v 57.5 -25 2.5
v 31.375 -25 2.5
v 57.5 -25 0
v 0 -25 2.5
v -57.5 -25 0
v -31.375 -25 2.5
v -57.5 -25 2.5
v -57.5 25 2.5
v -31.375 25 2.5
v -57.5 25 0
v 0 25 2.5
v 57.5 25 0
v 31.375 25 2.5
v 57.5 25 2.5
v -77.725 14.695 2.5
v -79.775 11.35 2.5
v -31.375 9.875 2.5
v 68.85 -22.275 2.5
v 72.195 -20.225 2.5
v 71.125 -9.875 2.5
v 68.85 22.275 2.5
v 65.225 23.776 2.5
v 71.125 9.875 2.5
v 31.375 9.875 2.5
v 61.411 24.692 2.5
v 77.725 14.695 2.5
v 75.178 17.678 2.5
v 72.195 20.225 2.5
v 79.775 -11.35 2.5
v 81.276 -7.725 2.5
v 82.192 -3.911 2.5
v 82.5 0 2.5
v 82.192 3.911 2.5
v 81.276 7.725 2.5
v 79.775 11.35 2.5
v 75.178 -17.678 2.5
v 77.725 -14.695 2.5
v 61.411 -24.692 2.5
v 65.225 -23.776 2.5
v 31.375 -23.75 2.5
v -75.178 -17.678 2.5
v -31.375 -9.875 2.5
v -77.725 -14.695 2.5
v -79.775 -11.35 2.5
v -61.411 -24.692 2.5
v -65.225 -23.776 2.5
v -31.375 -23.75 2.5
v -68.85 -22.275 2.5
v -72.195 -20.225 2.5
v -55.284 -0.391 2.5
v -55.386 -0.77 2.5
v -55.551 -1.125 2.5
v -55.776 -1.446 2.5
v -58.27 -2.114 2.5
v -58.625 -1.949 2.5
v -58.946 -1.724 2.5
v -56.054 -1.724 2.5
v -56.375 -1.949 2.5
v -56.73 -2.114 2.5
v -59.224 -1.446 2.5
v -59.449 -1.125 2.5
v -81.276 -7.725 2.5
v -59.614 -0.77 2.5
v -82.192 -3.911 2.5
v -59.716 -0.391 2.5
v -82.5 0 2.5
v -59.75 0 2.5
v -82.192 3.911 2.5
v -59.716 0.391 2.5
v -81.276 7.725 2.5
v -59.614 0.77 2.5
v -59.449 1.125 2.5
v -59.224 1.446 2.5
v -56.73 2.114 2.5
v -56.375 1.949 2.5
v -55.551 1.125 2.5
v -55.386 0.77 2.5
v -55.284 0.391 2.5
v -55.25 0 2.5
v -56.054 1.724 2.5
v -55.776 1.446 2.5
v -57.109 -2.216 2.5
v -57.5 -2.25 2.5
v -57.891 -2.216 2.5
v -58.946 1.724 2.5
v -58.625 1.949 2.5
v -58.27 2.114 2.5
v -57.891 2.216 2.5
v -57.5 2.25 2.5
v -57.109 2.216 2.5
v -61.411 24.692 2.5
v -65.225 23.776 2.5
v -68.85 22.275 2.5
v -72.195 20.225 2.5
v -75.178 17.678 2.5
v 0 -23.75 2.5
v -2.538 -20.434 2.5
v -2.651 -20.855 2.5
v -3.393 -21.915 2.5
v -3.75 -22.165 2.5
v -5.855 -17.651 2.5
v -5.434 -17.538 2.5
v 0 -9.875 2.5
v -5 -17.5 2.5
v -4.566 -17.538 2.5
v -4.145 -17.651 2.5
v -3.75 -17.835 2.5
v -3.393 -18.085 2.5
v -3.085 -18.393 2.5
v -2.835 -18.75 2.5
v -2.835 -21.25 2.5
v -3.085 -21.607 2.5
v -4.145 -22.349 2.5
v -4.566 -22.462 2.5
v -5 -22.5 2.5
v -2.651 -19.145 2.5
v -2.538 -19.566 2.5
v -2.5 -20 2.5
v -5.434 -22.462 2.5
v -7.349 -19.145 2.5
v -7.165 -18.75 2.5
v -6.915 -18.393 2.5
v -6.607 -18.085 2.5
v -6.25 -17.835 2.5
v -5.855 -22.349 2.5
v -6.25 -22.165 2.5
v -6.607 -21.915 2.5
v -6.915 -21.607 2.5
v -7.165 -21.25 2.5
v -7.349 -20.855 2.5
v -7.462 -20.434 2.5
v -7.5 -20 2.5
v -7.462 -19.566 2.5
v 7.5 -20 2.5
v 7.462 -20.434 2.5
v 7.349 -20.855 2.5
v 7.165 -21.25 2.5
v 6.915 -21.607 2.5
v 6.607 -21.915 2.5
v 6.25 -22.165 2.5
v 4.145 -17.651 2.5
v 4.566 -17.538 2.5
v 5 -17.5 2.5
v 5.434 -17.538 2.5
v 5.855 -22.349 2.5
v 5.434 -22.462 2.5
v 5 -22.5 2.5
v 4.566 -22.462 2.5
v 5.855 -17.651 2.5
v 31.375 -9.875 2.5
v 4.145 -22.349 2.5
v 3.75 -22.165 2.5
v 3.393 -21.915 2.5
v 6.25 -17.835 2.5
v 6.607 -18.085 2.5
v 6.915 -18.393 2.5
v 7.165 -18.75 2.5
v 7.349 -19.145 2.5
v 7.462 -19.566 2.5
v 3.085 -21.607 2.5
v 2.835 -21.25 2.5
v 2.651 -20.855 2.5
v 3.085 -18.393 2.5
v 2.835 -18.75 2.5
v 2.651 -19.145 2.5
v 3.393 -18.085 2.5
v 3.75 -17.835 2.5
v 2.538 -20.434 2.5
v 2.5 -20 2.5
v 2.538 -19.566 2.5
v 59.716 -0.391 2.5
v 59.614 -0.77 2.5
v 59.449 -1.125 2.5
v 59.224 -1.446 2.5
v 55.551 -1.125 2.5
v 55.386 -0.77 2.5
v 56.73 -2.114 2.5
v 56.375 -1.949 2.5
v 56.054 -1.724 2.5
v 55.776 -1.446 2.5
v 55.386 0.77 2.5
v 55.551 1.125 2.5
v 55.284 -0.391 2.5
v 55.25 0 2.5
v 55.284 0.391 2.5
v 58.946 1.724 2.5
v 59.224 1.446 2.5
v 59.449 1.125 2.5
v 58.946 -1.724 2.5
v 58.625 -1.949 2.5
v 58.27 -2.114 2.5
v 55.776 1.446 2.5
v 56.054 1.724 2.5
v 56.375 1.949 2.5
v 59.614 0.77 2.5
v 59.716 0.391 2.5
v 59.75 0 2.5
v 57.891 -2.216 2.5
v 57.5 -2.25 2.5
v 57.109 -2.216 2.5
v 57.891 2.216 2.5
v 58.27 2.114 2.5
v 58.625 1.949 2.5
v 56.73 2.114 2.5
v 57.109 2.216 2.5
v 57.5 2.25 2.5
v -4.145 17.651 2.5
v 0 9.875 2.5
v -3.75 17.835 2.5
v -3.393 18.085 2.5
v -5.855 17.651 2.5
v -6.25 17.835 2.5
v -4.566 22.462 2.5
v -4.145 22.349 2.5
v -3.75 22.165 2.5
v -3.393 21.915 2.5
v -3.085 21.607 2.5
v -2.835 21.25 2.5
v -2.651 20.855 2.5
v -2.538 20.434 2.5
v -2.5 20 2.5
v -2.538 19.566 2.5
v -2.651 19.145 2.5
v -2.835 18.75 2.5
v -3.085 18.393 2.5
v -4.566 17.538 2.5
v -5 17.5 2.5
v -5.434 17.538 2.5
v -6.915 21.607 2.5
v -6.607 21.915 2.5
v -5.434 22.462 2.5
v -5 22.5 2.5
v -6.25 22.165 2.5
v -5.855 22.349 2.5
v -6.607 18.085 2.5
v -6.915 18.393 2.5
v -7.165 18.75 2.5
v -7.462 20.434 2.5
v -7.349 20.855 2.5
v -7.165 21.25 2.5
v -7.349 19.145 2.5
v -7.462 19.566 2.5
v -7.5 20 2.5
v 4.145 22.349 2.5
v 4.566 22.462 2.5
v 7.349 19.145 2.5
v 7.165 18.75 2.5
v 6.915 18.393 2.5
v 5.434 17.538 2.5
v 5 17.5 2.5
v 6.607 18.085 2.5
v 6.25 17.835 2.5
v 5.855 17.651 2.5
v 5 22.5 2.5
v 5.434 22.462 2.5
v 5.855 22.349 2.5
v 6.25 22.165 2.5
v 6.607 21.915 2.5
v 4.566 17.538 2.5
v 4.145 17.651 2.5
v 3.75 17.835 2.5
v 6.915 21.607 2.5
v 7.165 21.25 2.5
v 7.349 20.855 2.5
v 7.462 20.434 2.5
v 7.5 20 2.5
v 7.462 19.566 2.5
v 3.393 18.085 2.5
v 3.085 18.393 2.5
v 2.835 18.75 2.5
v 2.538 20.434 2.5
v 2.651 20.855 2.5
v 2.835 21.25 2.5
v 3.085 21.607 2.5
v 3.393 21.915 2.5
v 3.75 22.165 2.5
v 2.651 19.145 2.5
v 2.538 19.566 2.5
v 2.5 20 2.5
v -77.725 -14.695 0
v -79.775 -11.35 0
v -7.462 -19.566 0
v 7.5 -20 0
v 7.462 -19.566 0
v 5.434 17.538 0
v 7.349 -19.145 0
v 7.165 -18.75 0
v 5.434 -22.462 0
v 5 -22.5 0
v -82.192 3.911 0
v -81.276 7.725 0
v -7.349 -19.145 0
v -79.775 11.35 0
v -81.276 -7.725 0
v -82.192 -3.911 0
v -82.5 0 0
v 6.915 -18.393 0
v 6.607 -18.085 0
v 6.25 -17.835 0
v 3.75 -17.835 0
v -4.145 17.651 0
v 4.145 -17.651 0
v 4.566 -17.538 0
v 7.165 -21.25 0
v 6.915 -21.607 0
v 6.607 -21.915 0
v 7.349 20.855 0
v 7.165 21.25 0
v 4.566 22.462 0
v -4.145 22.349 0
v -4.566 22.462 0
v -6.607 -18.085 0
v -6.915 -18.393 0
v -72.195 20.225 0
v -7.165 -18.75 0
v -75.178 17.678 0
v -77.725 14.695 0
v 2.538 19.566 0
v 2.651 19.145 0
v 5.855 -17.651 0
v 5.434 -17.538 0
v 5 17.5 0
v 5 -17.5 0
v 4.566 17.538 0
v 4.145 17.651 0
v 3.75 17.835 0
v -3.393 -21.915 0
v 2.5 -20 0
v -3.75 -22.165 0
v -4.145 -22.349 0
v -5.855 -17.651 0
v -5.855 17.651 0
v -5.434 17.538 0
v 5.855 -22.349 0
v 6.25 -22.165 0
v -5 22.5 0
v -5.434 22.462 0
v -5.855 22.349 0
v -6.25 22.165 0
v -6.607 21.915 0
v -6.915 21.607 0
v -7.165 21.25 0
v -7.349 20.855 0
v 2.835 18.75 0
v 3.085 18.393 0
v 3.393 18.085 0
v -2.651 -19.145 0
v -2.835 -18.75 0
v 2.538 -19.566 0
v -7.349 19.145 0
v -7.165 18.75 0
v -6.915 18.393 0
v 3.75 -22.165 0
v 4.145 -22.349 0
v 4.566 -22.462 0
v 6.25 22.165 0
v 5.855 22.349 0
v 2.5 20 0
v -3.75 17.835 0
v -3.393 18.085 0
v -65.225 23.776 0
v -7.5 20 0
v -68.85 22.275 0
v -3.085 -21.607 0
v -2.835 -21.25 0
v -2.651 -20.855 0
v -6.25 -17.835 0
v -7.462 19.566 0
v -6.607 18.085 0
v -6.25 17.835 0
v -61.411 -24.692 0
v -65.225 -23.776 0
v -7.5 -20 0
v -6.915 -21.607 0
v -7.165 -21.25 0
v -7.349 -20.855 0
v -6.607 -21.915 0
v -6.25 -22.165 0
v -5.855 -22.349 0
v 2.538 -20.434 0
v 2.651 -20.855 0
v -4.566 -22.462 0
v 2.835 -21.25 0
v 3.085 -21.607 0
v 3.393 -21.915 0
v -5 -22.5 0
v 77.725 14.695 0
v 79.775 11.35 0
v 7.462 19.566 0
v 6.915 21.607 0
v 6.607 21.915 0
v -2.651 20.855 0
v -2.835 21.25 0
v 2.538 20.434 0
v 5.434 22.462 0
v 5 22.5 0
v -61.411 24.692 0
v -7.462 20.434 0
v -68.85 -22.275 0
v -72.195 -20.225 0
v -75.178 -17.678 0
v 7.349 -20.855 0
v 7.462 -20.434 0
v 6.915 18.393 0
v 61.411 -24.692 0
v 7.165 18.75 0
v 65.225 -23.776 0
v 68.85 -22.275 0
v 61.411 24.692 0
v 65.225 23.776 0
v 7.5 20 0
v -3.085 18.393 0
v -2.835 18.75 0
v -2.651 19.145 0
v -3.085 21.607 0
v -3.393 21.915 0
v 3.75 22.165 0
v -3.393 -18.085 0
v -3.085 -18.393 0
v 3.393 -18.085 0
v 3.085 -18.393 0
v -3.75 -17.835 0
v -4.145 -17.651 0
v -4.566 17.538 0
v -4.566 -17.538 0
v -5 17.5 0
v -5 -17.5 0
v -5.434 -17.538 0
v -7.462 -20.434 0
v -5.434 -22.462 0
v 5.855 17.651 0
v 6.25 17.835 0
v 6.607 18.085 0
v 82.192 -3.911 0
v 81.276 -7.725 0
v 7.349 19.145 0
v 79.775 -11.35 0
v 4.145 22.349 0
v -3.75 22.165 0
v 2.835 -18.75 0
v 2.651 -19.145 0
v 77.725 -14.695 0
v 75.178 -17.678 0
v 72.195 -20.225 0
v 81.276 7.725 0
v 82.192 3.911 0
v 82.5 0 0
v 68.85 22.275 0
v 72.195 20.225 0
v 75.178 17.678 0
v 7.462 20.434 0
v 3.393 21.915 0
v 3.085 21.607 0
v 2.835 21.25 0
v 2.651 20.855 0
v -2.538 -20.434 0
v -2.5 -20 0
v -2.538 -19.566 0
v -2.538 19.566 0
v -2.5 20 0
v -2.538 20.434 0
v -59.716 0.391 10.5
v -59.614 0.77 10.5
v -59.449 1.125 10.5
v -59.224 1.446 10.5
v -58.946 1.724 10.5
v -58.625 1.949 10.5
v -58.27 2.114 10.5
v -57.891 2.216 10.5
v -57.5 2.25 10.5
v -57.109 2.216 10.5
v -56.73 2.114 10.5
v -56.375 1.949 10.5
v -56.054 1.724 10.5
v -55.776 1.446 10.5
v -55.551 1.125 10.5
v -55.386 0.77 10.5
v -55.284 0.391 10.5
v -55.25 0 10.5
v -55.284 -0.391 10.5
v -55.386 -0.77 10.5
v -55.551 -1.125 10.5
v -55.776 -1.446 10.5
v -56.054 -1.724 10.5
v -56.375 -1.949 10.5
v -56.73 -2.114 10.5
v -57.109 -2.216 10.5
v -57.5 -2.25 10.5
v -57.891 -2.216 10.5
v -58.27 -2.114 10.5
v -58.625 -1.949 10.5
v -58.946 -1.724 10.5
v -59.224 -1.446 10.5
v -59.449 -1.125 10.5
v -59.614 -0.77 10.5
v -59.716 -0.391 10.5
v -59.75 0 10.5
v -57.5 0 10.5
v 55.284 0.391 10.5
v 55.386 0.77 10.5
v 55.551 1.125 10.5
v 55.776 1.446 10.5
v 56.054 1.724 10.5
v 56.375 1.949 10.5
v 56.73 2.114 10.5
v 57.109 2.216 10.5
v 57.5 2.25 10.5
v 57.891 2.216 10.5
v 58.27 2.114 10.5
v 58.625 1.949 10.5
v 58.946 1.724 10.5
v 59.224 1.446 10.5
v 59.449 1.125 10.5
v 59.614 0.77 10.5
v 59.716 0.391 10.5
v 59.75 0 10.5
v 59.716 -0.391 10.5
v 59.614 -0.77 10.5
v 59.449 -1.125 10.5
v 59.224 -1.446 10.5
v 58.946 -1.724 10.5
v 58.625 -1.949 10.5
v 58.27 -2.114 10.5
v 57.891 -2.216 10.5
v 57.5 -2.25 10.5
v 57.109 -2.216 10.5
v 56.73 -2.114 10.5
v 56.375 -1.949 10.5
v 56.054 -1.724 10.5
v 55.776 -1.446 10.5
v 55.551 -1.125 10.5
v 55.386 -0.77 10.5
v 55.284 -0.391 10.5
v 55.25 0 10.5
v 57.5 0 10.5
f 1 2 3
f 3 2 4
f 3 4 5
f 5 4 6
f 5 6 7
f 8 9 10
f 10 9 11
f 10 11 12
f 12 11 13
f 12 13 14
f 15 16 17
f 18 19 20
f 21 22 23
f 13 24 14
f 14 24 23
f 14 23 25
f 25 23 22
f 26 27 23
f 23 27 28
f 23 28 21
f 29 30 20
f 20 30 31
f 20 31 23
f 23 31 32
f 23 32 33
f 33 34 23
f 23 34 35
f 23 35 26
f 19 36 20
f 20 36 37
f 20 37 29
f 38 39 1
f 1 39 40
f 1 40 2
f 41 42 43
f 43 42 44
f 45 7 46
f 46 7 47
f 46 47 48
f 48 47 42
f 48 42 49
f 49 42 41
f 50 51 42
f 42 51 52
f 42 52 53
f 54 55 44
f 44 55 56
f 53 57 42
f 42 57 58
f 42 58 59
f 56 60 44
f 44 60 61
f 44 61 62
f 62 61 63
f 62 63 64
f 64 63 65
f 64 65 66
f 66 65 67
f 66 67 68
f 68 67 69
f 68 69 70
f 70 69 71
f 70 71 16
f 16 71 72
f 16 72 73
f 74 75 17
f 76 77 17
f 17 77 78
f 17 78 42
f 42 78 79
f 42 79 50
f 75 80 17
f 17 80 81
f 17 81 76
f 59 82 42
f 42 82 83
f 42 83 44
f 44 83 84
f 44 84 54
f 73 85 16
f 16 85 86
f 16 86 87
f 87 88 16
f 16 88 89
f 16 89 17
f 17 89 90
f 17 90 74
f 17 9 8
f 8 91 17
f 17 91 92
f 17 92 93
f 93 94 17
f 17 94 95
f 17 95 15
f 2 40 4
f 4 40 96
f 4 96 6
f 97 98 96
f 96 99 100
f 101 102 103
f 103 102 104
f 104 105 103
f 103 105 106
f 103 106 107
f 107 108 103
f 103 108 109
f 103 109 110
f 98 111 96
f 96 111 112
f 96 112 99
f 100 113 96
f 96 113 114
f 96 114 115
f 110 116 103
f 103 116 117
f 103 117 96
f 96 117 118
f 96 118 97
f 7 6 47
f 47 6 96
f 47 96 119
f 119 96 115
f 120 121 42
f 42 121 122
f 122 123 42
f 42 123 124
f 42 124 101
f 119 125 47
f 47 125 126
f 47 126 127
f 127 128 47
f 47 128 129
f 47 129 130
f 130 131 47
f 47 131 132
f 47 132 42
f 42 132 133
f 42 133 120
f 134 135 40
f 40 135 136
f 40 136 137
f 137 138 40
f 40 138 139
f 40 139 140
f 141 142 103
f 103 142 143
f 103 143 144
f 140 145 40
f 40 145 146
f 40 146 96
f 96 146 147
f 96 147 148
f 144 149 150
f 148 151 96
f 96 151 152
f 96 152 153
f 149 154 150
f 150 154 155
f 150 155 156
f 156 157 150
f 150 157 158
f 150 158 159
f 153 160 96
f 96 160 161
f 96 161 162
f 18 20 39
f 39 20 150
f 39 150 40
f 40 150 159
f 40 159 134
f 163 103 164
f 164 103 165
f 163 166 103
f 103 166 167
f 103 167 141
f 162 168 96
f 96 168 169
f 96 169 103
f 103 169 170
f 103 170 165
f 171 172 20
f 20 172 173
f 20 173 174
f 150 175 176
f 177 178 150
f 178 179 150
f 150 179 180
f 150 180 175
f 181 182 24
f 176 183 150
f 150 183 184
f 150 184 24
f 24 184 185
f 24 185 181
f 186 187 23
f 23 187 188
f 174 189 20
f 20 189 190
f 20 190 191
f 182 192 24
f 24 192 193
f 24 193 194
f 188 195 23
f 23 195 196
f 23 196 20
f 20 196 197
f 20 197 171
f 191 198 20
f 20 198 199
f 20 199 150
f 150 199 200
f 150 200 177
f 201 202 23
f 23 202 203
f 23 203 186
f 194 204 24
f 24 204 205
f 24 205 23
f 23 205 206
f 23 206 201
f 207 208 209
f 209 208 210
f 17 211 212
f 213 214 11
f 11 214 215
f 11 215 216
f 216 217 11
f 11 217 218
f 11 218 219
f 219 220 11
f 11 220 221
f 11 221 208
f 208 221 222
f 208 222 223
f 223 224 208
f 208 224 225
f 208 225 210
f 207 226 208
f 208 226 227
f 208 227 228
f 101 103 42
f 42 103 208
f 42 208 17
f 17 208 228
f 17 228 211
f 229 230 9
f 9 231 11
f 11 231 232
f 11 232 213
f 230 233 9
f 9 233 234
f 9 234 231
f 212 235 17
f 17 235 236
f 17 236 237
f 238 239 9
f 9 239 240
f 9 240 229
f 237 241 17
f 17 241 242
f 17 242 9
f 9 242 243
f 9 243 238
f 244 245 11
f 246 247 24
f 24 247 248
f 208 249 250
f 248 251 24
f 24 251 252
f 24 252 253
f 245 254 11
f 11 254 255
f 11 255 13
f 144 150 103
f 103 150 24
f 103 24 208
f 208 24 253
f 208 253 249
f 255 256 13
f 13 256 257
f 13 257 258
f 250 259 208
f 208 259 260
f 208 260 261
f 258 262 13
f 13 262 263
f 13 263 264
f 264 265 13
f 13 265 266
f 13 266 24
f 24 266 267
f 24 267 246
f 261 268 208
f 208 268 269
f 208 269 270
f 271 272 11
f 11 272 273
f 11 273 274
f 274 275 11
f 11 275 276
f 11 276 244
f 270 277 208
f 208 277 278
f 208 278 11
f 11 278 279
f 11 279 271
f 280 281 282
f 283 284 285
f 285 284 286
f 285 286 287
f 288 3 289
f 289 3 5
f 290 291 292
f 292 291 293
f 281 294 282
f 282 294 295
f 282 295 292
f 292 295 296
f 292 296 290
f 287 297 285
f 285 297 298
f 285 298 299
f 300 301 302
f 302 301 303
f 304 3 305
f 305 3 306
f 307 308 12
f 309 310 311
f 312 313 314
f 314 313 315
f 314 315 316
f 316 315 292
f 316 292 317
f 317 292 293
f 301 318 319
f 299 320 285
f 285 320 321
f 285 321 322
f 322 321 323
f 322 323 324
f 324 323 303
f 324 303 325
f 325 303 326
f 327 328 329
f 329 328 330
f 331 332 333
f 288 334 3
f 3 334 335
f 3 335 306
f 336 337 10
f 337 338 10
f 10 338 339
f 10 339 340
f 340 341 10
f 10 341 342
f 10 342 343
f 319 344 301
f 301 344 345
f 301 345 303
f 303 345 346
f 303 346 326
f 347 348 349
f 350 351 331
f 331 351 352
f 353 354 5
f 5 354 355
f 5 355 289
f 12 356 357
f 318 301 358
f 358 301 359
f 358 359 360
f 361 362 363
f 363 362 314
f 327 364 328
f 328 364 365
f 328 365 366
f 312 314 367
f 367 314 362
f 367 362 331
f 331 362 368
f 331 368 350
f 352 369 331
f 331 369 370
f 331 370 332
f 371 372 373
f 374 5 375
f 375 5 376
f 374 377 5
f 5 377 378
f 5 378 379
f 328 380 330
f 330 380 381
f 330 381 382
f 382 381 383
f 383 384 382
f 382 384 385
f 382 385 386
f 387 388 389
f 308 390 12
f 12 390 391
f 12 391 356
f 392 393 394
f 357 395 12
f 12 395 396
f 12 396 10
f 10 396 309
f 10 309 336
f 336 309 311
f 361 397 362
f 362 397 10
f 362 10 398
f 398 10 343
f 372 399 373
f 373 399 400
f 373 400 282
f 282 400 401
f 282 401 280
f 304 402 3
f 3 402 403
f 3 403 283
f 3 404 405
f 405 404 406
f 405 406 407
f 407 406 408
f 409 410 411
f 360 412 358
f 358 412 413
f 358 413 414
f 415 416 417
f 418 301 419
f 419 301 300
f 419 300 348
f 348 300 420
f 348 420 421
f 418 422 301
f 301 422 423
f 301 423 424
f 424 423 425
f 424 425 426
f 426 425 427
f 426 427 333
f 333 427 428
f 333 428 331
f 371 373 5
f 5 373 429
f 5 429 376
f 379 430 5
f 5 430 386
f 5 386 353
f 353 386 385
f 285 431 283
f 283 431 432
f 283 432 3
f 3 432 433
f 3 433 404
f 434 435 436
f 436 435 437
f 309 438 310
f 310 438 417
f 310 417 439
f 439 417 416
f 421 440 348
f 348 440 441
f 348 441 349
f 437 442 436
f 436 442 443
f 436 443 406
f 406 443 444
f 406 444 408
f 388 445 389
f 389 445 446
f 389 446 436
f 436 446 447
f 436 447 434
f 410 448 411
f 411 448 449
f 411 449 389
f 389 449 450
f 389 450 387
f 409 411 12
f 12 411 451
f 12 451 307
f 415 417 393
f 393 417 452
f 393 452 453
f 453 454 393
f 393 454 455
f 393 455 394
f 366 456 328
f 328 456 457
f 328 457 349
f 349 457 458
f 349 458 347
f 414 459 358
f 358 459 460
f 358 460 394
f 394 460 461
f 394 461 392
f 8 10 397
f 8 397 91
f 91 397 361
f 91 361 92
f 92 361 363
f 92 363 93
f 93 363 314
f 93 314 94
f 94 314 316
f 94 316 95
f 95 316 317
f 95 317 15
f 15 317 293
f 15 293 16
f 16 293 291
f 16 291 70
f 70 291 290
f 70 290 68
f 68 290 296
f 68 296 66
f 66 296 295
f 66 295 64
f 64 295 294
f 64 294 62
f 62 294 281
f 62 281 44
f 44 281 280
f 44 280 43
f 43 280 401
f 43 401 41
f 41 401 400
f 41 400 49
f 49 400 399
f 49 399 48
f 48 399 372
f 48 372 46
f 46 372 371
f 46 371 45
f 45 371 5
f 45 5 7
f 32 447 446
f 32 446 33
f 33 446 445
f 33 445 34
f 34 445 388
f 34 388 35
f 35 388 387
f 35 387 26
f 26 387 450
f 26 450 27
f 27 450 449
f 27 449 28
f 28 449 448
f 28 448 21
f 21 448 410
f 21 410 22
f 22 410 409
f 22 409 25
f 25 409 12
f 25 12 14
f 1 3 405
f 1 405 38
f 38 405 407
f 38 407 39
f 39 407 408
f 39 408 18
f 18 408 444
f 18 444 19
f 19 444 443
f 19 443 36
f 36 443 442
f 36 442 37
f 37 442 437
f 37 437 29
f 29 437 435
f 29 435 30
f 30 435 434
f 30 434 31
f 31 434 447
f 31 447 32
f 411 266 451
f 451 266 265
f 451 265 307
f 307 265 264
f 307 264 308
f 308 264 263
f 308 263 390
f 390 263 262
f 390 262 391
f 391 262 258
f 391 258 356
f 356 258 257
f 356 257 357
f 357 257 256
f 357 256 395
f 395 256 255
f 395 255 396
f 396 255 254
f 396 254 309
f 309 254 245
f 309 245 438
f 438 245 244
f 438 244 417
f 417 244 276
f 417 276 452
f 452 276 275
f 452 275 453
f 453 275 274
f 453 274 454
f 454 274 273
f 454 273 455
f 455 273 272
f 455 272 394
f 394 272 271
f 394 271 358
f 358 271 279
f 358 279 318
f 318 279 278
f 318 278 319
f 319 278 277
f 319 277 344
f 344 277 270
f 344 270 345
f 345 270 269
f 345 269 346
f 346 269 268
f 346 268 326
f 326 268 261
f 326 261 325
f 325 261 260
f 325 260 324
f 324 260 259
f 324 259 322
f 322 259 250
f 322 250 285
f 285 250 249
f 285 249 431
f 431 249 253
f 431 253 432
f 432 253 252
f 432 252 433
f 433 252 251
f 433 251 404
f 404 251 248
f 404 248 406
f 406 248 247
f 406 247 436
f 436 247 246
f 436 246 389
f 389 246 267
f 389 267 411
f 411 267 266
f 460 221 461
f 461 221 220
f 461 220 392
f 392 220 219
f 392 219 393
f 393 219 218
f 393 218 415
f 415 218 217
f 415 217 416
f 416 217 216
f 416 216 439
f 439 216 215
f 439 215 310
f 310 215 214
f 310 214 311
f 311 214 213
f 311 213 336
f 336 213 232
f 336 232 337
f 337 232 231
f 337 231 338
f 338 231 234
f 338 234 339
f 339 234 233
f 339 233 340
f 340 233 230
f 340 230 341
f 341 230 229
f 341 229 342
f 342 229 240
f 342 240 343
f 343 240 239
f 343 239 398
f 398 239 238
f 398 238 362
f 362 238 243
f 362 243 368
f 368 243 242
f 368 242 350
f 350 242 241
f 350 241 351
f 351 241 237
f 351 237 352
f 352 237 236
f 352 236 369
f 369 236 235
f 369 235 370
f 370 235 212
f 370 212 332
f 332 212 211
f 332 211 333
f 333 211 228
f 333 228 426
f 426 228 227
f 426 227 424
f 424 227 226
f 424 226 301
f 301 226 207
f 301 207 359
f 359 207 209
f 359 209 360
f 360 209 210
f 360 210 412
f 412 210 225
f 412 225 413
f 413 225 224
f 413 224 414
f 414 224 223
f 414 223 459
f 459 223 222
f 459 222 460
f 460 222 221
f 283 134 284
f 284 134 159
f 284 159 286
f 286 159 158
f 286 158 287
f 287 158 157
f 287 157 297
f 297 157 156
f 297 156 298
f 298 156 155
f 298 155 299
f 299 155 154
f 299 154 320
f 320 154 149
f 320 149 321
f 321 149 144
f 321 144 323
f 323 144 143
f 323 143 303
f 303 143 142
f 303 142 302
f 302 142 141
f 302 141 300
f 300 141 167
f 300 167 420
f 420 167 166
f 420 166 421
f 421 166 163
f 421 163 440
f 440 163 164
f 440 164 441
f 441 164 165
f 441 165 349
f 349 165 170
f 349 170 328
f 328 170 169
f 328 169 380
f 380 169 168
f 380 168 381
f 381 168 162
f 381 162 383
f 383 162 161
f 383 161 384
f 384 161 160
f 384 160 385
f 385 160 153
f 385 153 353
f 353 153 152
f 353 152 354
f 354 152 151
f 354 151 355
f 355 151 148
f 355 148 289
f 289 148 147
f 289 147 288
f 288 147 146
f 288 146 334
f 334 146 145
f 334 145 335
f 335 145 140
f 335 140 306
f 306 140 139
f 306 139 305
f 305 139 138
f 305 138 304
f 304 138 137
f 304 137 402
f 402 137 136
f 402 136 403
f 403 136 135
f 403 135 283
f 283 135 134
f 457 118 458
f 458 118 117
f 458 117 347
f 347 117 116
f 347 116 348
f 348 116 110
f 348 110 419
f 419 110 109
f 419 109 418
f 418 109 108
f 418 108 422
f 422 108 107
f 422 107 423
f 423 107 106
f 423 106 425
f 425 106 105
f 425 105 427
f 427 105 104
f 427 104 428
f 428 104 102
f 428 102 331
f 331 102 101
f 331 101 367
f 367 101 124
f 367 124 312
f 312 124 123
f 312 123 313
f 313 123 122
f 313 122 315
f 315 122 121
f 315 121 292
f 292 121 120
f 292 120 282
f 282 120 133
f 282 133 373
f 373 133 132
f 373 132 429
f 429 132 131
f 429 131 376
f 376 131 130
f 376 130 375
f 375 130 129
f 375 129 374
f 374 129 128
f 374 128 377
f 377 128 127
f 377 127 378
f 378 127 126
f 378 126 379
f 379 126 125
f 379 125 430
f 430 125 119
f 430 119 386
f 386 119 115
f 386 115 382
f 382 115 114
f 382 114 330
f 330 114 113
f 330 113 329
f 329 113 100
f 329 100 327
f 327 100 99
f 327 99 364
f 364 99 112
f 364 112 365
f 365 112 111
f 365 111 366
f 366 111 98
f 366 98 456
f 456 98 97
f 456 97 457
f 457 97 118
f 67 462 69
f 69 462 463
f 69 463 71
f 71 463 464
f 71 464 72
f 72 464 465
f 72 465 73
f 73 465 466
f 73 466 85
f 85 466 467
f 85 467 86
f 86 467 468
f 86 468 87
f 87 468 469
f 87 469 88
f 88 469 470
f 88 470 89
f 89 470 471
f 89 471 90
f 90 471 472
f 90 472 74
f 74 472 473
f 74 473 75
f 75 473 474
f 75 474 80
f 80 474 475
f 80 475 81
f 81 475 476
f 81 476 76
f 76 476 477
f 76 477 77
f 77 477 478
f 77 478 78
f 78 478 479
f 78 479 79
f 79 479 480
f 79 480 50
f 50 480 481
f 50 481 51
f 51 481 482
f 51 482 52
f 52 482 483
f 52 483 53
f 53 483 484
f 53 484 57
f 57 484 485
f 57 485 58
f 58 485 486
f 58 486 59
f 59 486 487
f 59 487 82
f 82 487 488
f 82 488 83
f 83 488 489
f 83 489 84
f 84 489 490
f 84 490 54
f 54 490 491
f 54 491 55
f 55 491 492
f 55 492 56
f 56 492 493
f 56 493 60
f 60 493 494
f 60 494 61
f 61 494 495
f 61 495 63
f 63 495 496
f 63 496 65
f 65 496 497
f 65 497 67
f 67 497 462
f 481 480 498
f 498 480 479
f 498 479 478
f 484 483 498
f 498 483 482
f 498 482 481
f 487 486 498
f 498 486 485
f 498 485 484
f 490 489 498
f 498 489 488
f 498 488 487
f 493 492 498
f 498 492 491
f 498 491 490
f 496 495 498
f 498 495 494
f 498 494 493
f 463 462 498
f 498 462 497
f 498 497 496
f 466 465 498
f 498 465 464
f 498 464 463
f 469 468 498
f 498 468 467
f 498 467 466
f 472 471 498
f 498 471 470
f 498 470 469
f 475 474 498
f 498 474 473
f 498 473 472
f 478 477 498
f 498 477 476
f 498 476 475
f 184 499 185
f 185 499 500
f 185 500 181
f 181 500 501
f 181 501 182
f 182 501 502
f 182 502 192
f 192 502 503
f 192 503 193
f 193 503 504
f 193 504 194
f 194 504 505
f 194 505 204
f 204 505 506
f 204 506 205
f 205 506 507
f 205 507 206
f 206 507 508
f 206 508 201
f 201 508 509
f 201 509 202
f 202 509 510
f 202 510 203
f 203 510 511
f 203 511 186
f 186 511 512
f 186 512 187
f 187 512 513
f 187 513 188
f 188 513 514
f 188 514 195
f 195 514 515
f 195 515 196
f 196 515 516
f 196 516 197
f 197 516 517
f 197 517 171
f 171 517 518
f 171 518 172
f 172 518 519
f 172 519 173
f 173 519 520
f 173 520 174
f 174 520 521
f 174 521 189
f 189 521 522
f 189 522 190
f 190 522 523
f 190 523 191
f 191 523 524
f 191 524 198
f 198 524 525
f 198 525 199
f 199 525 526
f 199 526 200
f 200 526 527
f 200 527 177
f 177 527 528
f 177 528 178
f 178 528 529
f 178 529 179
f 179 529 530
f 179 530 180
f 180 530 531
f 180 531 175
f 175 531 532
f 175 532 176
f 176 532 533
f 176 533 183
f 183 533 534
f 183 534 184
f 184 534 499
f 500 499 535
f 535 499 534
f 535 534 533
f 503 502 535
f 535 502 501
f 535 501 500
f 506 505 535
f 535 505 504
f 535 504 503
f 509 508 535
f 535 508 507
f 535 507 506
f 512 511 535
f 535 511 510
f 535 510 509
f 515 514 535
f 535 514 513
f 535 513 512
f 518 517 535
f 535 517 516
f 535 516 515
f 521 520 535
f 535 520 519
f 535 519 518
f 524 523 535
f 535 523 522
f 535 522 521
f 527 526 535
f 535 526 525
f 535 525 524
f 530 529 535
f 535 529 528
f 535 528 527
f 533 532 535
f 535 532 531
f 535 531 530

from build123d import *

# Parameters (mm, degrees)
SKETCH1_W           = 165
SKETCH1_H           = 50
BOSS_EXTRUDE1_DEPTH = 2.5
FILLET1_R           = 25
SKETCH2_R           = 2.5
CUT_EXTRUDE1_DEPTH  = 2.5
SKETCH4_R           = 2.25
BOSS_EXTRUDE2_DEPTH = 8


with BuildPart() as part:
    # Sketch1 → Boss-Extrude1 (new body)
    with BuildSketch(Plane.XY):
        Rectangle(SKETCH1_W, SKETCH1_H)
    extrude(amount=BOSS_EXTRUDE1_DEPTH)

    # Fillet1
    fillet1_edges = [part.edges().sort_by_distance(p)[0] for p in [
        (-82.5, -25, 1.25),
        (-82.5, 25, 1.25),
        (82.5, -25, 1.25),
        (82.5, 25, 1.25),
    ]]
    fillet(fillet1_edges, radius=FILLET1_R - 0.0001)  # a hair under: the kernel refuses the full size

    # Sketch2 → Cut-Extrude1 (cut)
    with BuildSketch(Plane.XY.offset(2.5)):
        with Locations((-5, 20)):
            Circle(SKETCH2_R)
        with Locations((5, 20)):
            Circle(SKETCH2_R)
    cut_extrude1 = extrude(amount=-CUT_EXTRUDE1_DEPTH, mode=Mode.SUBTRACT)

    # Mirror1: Cut-Extrude1 across plane
    add(cut_extrude1.mirror(Plane.ZX), mode=Mode.SUBTRACT)

    # Sketch4 → Boss-Extrude2 (add)
    with BuildSketch(Plane.XY.offset(2.5)):
        with Locations(Location((-57.5, 0, 0), (0, 0, 180))):
            Circle(SKETCH4_R)
    boss_extrude2 = extrude(amount=BOSS_EXTRUDE2_DEPTH)

    # Mirror3: Boss-Extrude2 across plane
    add(boss_extrude2.mirror(Plane(origin=(0, 0, 0), x_dir=(0, 0, 1), z_dir=(1, 0, 0))))


solid = part.part
